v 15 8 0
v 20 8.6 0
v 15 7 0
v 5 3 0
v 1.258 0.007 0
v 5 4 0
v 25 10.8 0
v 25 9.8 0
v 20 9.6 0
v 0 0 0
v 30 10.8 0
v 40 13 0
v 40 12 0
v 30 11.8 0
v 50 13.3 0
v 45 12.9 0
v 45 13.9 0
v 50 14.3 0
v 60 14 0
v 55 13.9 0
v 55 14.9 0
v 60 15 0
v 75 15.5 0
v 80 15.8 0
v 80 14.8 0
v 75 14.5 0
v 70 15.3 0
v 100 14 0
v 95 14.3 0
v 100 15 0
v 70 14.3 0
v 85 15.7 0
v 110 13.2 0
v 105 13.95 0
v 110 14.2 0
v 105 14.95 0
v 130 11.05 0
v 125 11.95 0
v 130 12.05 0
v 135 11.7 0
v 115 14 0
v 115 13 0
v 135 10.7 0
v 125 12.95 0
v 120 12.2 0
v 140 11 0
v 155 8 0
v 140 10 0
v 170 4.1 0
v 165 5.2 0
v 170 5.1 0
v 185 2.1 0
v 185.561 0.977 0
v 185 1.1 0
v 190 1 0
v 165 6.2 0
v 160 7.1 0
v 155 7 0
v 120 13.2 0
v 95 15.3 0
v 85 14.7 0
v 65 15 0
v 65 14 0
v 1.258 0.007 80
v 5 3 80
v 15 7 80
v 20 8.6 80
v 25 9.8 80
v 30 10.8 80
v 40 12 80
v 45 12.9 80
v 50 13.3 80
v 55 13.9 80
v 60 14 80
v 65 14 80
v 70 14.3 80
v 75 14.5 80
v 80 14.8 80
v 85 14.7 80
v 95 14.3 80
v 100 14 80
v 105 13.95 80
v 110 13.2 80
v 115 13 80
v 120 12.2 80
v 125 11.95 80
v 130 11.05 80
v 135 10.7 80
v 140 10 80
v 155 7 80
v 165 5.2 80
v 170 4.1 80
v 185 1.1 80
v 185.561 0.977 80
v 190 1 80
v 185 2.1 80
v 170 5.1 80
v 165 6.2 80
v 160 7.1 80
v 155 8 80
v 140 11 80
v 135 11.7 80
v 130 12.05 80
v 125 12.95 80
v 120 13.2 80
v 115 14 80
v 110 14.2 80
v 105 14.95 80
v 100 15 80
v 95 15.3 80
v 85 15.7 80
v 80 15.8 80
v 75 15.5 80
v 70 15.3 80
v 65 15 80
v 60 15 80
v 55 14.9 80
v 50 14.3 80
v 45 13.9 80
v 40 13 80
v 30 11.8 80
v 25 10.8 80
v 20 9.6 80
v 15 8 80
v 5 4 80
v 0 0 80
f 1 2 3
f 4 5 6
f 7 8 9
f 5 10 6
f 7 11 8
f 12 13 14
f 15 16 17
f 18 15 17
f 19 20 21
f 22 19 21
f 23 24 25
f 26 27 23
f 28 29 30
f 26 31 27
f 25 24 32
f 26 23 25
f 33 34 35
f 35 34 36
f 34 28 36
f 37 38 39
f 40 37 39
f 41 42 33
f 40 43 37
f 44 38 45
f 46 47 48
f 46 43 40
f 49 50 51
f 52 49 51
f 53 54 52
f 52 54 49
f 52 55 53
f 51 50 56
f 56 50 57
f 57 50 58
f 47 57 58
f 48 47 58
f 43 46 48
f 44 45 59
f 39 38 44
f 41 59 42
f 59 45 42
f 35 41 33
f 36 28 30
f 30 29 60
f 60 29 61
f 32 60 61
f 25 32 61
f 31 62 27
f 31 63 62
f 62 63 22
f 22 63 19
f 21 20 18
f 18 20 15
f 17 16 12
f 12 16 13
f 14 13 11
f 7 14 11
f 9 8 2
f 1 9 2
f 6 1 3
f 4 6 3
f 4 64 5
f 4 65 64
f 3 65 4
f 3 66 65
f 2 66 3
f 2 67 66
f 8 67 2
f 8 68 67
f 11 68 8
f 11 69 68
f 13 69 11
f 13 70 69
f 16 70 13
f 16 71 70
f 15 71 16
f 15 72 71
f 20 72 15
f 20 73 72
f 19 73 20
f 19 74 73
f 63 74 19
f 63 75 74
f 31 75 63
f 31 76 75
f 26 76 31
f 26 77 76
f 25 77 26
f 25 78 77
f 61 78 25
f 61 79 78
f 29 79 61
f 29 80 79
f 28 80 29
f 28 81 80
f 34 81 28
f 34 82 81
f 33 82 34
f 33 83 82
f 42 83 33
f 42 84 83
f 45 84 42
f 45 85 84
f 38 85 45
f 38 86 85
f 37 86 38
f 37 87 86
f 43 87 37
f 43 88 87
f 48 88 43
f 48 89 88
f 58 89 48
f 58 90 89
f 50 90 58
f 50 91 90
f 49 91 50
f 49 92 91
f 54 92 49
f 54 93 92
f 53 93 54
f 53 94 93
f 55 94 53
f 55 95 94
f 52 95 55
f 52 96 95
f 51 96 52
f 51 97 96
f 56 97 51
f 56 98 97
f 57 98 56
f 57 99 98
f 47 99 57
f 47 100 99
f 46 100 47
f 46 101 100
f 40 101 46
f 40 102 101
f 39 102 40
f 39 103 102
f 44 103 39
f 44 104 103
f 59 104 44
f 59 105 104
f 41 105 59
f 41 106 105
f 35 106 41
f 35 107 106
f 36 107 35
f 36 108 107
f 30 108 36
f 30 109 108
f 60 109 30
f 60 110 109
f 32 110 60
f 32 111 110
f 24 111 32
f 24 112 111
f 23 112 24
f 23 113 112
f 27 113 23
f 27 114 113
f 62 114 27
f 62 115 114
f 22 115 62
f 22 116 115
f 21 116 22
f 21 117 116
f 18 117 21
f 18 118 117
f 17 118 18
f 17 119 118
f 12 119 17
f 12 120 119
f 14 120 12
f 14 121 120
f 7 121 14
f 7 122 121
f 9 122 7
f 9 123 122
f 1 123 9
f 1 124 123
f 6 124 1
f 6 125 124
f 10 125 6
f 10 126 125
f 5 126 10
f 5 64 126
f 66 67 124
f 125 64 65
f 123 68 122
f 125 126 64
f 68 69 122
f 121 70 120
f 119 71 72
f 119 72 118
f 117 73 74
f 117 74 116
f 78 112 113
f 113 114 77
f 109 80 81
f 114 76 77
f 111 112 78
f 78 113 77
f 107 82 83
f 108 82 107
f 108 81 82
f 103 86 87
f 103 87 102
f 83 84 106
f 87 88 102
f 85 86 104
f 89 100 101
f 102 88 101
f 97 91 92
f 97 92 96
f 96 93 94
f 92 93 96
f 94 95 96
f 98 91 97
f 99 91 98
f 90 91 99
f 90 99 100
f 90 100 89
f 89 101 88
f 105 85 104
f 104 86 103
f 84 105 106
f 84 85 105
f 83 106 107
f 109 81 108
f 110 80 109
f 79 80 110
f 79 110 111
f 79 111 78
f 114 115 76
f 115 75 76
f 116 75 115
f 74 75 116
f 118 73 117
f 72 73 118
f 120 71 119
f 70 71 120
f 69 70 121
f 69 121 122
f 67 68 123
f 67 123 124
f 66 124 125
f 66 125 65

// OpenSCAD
$fn=50;
module profile() {
polygon([
[0,0],
[5,4],
[10,6],
[15,8],
[20,9.6],
[25,10.8],
[30,11.8],
[35,12.4],
[40,13],
[45,13.9],
[50,14.3],
[55,14.9],
[60,15],
[65,15],
[70,15.3],
[75,15.5],
[80,015.8],
[85,15.7],
[90,15.5],
[95,15.3],
[100,15],
[105,14.95],
[110,14.2],
[115,14],
[120,13.2],
[125,12.95],
[130,12.05],
[135,11.7],
[140,11],
[145,10],
[150,9],
[155,8],
[160,7.1],
[165,6.2],
[170,5.1],
[175,4.1],
[180,3.1],
[185,2.1],
[190,1],
]);
}

module wingmount() {
    linear_extrude(80)
        difference() {
            profile();
            translate([0,-1,0]) profile();
        }
    }

wingmount();
